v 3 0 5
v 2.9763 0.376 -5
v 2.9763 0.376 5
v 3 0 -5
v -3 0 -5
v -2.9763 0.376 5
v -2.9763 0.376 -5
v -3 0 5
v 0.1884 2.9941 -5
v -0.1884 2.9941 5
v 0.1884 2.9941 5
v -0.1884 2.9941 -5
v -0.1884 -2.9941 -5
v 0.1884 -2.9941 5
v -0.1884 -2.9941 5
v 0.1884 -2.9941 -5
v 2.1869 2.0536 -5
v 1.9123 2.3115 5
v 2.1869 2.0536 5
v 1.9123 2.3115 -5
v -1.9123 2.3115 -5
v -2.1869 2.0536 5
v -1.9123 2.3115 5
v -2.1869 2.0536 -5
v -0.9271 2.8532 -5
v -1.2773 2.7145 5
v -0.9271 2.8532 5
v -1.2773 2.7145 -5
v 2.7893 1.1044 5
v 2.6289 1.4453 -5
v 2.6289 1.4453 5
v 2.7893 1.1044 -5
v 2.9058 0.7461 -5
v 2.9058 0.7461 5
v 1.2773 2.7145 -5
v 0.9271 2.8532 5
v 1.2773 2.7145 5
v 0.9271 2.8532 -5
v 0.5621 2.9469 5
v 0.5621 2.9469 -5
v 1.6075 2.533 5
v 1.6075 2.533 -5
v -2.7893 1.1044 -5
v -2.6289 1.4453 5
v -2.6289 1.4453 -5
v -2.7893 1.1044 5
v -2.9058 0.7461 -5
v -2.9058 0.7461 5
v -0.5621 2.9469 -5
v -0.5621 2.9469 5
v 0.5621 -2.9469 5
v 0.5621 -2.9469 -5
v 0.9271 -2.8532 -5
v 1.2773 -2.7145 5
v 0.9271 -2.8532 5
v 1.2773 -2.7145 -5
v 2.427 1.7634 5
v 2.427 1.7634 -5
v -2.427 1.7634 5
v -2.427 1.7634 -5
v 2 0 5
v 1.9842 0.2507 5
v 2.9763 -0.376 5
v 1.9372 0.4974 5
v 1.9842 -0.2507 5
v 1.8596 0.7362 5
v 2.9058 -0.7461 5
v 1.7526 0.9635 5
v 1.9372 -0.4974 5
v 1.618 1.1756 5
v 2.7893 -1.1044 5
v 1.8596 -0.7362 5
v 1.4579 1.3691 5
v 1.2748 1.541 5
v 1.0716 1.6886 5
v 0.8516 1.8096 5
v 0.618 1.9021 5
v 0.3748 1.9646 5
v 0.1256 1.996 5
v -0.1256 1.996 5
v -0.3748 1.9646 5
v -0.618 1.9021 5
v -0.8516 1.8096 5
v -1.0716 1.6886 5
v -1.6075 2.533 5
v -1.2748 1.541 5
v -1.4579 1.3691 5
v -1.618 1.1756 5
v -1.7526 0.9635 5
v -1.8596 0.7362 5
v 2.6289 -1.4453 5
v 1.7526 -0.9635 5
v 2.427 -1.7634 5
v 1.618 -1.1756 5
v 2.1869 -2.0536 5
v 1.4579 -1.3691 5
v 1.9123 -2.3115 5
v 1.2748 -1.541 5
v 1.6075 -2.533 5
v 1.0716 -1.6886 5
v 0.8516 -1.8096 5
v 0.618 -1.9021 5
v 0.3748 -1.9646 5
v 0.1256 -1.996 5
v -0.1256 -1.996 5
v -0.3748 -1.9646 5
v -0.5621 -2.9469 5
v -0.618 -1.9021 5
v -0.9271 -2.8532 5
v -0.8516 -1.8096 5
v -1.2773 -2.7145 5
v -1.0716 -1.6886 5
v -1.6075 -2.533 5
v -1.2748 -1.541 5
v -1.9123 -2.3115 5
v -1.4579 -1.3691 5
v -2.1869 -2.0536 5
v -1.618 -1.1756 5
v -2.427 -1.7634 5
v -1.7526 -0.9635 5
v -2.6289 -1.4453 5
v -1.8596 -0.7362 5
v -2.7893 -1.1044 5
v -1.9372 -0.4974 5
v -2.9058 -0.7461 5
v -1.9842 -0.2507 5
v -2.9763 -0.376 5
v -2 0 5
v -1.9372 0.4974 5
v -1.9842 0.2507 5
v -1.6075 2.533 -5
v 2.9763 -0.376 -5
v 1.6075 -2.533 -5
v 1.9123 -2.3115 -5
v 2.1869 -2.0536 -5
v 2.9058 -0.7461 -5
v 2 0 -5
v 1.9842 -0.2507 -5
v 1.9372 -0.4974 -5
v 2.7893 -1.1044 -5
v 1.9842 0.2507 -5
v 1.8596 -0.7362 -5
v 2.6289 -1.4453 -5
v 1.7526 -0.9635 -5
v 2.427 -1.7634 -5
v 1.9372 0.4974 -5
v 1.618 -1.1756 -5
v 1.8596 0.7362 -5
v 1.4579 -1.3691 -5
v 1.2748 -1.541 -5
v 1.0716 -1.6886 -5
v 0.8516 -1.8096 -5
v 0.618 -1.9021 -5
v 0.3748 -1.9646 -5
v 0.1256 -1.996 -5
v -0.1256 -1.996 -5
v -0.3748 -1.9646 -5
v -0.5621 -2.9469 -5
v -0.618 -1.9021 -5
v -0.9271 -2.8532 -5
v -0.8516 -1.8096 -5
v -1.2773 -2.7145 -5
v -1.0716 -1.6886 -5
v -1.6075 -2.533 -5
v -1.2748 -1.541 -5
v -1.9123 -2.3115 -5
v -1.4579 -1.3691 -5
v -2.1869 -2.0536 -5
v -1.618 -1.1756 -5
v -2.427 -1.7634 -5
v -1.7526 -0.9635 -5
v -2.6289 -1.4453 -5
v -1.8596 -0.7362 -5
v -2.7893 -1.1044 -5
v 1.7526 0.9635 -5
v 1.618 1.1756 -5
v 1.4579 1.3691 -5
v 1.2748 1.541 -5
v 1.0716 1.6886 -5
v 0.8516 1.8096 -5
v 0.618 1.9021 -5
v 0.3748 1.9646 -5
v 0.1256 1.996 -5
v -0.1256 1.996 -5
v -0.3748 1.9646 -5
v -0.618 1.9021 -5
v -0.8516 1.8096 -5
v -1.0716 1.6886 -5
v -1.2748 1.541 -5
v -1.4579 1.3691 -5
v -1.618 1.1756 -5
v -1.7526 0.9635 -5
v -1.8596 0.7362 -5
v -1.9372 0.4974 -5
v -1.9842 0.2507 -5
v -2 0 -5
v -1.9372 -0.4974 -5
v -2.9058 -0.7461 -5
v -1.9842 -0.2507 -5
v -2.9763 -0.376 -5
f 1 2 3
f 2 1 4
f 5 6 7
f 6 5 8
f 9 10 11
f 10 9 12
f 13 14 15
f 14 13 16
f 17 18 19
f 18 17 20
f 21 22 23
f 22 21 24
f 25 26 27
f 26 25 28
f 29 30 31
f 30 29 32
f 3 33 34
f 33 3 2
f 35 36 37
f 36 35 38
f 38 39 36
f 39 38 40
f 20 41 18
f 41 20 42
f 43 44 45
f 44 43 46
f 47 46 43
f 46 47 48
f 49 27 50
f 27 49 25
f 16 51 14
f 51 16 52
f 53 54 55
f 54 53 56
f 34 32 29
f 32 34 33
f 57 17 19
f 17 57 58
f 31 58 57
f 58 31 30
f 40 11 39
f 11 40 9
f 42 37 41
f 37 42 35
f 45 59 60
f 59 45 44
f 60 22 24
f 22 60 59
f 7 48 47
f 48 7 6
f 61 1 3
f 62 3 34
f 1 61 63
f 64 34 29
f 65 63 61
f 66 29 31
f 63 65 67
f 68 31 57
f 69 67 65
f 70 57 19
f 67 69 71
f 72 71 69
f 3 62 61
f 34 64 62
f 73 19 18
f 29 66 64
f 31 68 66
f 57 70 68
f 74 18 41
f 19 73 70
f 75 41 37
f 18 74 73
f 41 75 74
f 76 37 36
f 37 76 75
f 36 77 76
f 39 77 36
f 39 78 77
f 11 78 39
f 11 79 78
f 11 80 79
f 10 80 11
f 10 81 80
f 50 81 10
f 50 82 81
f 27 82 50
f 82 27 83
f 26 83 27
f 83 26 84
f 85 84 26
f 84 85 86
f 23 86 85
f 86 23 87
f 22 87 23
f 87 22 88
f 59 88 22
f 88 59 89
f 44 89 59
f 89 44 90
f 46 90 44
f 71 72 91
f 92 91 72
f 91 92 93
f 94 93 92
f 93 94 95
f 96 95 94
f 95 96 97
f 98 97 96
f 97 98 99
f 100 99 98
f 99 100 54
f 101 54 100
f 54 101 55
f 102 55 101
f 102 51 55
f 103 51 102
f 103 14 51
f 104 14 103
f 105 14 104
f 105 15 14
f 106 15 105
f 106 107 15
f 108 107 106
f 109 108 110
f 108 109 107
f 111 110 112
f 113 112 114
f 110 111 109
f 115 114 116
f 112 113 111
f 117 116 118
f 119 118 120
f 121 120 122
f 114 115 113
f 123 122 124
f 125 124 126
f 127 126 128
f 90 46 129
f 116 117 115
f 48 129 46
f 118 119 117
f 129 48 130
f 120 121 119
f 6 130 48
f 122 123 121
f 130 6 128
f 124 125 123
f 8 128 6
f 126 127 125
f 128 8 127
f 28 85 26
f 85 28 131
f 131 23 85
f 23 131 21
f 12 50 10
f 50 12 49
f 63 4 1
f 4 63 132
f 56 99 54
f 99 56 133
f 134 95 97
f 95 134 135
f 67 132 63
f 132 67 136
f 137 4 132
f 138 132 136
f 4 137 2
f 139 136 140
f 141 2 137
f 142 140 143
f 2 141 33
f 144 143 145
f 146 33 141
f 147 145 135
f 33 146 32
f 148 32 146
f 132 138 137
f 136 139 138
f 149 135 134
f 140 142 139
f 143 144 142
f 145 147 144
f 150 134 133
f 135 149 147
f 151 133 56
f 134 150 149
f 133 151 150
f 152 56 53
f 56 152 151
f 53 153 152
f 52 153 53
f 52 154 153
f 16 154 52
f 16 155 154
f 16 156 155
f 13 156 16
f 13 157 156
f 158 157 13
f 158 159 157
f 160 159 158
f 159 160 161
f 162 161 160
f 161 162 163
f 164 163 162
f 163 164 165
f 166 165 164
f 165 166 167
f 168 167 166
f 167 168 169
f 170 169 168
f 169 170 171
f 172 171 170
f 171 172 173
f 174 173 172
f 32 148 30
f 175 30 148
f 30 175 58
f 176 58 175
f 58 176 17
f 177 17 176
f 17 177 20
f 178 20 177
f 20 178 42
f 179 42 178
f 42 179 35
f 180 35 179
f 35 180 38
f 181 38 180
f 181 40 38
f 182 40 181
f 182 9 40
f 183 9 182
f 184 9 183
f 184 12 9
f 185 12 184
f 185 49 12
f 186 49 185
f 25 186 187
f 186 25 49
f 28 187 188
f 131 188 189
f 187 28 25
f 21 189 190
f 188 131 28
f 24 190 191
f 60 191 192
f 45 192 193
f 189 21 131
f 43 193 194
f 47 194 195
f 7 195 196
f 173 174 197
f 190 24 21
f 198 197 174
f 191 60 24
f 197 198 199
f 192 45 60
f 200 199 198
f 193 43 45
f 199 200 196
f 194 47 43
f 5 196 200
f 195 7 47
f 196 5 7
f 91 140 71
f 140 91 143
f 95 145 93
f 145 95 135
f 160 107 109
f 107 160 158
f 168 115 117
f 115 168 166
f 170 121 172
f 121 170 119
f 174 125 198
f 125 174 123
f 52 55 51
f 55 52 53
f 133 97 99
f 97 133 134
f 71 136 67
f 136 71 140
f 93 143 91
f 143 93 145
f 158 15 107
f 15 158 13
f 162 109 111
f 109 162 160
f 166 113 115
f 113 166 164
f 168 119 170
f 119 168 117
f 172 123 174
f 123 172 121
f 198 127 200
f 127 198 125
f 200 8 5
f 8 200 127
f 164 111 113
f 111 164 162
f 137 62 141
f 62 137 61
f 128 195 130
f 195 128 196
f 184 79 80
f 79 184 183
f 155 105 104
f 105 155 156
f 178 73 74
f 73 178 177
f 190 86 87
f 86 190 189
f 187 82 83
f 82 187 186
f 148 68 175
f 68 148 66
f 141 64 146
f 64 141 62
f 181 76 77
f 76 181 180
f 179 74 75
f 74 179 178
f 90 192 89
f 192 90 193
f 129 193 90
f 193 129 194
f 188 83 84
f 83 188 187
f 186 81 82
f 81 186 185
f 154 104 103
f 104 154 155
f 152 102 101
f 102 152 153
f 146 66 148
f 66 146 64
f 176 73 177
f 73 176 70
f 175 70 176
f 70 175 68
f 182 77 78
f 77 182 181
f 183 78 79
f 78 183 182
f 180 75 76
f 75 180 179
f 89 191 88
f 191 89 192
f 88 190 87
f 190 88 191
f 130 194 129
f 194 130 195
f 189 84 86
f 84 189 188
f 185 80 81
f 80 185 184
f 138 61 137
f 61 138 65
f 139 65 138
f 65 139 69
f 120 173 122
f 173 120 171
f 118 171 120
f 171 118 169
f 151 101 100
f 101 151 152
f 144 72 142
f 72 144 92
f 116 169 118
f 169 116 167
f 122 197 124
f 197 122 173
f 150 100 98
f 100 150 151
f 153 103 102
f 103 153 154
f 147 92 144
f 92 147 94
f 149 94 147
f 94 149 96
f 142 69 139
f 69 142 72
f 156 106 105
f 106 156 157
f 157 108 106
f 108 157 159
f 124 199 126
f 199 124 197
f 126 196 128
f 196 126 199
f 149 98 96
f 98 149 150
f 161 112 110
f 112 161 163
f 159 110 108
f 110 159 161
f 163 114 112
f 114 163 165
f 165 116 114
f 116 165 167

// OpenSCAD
$fn = 50;


difference() {
	union() {
		translate(v = [0, 0, -5.0000000000]) {
			cylinder(h = 10, r = 3.0000000000);
		}
	}
	union() {
		translate(v = [0, 0, -100.0000000000]) {
			cylinder(h = 200, r = 2);
		}
	}
}
